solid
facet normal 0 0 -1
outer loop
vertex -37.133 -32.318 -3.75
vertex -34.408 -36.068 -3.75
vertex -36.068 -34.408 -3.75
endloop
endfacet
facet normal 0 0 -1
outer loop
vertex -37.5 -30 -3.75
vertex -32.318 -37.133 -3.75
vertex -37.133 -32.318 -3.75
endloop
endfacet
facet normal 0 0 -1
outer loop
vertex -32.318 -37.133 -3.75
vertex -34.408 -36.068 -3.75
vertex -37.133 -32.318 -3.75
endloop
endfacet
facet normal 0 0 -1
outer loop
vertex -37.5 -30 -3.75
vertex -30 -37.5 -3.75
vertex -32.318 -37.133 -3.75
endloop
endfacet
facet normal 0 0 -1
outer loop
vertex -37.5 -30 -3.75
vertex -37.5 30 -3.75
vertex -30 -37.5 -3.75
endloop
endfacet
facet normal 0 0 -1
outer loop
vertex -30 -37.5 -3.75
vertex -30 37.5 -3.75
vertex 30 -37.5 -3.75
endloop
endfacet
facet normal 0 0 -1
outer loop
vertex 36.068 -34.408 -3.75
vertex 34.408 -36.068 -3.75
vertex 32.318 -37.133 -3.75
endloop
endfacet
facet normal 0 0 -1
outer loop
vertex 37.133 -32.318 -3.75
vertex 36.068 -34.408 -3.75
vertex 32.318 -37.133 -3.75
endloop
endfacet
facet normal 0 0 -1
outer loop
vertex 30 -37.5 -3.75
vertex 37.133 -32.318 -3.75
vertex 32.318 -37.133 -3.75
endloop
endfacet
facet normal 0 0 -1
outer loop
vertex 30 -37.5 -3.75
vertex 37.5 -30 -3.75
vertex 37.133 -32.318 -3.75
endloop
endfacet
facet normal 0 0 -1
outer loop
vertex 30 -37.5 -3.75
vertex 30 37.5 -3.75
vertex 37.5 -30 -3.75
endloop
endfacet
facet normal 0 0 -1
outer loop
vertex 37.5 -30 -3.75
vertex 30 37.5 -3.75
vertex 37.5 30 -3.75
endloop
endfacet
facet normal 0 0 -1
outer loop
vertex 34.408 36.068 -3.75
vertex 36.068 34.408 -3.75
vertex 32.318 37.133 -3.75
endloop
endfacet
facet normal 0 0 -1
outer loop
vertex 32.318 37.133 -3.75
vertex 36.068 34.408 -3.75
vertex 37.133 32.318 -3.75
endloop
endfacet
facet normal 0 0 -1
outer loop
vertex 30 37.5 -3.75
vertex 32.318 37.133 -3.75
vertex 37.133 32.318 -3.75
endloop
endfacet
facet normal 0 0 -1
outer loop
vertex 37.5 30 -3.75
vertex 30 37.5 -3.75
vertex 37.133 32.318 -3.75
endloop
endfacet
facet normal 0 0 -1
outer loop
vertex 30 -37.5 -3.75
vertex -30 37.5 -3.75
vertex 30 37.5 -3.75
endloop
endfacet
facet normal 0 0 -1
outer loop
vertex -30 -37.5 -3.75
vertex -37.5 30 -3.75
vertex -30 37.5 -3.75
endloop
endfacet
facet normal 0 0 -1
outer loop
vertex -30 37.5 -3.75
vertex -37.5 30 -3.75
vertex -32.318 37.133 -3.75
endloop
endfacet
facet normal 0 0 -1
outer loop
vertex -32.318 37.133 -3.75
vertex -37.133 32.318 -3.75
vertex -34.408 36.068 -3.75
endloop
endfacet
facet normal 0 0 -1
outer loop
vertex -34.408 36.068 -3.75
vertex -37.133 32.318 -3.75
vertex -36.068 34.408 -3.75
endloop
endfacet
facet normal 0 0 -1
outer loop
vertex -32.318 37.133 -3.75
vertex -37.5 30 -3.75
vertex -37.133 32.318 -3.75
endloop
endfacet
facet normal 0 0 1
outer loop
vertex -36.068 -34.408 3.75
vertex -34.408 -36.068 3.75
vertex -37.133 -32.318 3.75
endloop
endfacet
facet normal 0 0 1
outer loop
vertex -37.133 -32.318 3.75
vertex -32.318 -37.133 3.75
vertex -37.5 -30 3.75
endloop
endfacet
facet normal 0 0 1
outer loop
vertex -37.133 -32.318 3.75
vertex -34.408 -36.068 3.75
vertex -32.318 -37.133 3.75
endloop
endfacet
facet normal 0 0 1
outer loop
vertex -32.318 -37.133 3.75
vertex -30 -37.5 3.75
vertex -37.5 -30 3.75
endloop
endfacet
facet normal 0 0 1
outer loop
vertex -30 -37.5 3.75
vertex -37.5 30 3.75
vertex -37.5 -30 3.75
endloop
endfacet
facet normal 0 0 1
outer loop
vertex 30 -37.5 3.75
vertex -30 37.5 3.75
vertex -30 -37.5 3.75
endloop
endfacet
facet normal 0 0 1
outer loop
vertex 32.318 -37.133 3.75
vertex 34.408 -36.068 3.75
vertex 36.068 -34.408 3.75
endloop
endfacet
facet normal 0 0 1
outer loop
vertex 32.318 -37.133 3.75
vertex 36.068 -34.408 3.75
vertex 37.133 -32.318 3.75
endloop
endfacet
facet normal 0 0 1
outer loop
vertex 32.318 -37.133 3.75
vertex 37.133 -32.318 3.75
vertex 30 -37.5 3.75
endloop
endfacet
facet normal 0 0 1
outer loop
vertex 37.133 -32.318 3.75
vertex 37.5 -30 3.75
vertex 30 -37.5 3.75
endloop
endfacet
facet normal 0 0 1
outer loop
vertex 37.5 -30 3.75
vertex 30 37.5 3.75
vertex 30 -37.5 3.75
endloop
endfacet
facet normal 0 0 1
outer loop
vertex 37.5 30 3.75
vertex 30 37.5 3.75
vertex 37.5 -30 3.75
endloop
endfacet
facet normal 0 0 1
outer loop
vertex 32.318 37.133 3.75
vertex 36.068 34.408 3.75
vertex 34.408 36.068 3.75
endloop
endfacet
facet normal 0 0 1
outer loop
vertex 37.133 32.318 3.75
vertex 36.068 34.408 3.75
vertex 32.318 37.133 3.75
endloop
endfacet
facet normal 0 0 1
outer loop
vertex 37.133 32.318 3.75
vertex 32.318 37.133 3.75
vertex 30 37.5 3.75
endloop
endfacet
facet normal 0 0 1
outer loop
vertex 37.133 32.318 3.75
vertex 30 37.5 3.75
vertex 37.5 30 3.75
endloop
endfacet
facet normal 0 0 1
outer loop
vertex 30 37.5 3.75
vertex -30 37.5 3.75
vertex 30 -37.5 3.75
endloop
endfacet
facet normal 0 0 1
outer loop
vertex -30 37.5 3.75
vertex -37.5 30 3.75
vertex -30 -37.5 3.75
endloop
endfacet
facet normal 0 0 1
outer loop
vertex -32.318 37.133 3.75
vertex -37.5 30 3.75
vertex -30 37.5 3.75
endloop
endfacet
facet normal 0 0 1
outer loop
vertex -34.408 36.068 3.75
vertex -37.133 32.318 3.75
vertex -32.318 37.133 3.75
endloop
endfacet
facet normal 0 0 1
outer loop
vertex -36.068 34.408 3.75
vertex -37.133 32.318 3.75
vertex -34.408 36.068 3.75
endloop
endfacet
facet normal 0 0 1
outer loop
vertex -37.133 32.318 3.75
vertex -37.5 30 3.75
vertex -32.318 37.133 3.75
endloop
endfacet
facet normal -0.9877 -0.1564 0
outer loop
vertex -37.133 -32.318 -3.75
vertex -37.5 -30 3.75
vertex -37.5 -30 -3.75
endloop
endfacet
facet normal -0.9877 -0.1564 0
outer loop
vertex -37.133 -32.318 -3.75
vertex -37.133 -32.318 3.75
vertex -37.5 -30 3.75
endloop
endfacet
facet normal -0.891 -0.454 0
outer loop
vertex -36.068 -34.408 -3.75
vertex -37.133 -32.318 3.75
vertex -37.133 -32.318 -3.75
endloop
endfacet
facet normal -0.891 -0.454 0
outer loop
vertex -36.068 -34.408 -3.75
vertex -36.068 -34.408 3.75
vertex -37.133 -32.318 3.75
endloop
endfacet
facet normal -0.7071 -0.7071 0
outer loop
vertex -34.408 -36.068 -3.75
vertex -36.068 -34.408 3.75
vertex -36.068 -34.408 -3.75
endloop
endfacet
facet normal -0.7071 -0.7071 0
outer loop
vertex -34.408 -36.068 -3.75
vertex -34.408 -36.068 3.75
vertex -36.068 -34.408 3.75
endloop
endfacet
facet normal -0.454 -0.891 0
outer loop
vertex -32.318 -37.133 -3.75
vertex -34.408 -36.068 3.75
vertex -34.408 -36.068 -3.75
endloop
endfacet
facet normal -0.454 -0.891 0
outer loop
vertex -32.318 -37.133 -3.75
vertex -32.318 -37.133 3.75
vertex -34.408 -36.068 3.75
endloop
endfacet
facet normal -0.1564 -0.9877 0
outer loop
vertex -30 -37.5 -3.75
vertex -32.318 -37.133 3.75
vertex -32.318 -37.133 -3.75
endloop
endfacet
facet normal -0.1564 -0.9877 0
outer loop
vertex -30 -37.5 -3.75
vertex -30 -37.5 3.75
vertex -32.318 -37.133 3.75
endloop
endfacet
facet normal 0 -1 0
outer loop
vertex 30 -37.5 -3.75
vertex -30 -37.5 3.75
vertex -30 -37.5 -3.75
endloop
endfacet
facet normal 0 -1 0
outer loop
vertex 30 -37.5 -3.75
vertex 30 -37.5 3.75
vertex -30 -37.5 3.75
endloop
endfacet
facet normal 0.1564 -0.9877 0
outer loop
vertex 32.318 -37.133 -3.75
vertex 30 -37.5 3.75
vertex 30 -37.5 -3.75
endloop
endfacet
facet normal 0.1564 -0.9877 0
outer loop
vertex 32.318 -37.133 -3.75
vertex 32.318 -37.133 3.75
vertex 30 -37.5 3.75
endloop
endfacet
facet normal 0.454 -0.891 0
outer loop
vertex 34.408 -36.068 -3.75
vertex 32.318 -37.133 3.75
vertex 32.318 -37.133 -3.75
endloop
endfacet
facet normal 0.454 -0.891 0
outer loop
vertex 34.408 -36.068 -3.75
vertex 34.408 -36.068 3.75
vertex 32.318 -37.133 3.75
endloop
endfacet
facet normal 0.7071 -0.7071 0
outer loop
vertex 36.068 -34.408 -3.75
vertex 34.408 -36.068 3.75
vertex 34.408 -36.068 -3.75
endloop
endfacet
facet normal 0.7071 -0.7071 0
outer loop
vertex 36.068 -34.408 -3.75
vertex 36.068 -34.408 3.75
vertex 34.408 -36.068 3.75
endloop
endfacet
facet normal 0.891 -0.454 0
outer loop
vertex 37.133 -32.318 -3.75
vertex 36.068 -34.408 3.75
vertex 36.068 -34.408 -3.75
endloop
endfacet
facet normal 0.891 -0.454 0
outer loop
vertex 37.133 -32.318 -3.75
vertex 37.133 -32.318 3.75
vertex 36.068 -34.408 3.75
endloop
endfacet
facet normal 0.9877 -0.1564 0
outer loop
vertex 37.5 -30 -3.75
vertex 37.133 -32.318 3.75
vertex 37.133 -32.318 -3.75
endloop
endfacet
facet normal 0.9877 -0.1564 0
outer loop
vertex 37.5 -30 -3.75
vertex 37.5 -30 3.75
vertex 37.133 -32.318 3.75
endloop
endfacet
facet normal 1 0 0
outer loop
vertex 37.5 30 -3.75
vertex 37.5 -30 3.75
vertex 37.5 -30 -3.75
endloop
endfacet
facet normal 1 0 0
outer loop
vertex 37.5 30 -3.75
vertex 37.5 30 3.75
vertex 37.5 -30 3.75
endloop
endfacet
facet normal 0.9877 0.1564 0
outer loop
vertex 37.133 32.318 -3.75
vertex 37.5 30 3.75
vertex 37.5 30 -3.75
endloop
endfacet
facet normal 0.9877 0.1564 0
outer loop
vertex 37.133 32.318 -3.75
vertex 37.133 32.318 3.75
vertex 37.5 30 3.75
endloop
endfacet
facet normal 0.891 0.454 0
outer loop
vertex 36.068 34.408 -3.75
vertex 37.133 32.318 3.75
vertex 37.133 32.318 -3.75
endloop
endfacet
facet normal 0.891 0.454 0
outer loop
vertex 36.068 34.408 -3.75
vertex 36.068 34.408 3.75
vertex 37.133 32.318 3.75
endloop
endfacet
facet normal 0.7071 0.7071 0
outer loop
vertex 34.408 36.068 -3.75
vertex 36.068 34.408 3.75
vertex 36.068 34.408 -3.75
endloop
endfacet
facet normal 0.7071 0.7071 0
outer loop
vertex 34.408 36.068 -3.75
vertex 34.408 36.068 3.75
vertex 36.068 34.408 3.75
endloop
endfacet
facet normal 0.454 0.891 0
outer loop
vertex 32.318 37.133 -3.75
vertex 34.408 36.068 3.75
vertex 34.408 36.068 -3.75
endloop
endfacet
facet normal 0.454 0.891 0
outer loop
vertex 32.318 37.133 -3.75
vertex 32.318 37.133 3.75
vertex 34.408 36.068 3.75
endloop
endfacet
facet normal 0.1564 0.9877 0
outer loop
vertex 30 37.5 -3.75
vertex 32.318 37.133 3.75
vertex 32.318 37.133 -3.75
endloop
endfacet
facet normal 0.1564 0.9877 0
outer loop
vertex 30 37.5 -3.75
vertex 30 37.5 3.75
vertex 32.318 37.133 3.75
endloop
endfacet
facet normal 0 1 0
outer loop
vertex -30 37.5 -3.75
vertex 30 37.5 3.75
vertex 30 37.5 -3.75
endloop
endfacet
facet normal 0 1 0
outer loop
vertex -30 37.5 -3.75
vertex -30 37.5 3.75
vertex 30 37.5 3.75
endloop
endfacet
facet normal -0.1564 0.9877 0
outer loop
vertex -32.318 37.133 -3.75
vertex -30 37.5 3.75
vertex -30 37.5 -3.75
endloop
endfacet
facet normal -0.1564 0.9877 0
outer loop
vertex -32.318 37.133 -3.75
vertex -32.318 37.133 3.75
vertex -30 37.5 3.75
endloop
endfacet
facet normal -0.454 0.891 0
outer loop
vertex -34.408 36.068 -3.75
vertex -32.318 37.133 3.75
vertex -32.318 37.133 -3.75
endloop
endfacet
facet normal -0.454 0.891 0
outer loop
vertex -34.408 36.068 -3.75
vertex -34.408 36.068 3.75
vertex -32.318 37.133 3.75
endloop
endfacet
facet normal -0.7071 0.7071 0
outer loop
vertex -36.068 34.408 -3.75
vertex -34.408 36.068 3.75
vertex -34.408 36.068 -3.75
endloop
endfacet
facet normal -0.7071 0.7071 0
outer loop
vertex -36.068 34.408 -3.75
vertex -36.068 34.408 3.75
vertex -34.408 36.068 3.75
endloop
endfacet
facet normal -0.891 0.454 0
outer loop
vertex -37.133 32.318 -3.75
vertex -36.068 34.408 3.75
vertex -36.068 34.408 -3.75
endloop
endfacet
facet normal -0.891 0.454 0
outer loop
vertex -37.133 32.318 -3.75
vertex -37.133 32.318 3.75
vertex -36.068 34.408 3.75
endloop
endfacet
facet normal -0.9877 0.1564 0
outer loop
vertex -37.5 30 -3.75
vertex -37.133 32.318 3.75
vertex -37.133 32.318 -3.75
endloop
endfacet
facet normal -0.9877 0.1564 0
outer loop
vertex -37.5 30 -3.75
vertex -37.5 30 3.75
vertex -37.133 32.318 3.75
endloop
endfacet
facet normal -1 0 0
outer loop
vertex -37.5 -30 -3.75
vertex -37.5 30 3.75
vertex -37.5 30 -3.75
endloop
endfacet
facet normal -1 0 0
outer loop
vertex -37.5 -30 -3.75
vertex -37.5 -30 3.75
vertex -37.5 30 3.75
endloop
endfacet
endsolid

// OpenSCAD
$fn = 100;
translate(v = [0, 0, -3.75])
{
  linear_extrude(height = 7.5, center = false, convexity = undef, twist = undef, slices = undef, scale = 1, $fn = 20)
  {
    translate(v = [-37.5, -37.5])
    {
      hull()
      {
        translate(v = [7.5, 7.5])
        {
          circle(r = 7.5);
        }
        translate(v = [67.5, 7.5])
        {
          circle(r = 7.5);
        }
        translate(v = [67.5, 67.5])
        {
          circle(r = 7.5);
        }
        translate(v = [7.5, 67.5])
        {
          circle(r = 7.5);
        }
      }
    }
  }
}
